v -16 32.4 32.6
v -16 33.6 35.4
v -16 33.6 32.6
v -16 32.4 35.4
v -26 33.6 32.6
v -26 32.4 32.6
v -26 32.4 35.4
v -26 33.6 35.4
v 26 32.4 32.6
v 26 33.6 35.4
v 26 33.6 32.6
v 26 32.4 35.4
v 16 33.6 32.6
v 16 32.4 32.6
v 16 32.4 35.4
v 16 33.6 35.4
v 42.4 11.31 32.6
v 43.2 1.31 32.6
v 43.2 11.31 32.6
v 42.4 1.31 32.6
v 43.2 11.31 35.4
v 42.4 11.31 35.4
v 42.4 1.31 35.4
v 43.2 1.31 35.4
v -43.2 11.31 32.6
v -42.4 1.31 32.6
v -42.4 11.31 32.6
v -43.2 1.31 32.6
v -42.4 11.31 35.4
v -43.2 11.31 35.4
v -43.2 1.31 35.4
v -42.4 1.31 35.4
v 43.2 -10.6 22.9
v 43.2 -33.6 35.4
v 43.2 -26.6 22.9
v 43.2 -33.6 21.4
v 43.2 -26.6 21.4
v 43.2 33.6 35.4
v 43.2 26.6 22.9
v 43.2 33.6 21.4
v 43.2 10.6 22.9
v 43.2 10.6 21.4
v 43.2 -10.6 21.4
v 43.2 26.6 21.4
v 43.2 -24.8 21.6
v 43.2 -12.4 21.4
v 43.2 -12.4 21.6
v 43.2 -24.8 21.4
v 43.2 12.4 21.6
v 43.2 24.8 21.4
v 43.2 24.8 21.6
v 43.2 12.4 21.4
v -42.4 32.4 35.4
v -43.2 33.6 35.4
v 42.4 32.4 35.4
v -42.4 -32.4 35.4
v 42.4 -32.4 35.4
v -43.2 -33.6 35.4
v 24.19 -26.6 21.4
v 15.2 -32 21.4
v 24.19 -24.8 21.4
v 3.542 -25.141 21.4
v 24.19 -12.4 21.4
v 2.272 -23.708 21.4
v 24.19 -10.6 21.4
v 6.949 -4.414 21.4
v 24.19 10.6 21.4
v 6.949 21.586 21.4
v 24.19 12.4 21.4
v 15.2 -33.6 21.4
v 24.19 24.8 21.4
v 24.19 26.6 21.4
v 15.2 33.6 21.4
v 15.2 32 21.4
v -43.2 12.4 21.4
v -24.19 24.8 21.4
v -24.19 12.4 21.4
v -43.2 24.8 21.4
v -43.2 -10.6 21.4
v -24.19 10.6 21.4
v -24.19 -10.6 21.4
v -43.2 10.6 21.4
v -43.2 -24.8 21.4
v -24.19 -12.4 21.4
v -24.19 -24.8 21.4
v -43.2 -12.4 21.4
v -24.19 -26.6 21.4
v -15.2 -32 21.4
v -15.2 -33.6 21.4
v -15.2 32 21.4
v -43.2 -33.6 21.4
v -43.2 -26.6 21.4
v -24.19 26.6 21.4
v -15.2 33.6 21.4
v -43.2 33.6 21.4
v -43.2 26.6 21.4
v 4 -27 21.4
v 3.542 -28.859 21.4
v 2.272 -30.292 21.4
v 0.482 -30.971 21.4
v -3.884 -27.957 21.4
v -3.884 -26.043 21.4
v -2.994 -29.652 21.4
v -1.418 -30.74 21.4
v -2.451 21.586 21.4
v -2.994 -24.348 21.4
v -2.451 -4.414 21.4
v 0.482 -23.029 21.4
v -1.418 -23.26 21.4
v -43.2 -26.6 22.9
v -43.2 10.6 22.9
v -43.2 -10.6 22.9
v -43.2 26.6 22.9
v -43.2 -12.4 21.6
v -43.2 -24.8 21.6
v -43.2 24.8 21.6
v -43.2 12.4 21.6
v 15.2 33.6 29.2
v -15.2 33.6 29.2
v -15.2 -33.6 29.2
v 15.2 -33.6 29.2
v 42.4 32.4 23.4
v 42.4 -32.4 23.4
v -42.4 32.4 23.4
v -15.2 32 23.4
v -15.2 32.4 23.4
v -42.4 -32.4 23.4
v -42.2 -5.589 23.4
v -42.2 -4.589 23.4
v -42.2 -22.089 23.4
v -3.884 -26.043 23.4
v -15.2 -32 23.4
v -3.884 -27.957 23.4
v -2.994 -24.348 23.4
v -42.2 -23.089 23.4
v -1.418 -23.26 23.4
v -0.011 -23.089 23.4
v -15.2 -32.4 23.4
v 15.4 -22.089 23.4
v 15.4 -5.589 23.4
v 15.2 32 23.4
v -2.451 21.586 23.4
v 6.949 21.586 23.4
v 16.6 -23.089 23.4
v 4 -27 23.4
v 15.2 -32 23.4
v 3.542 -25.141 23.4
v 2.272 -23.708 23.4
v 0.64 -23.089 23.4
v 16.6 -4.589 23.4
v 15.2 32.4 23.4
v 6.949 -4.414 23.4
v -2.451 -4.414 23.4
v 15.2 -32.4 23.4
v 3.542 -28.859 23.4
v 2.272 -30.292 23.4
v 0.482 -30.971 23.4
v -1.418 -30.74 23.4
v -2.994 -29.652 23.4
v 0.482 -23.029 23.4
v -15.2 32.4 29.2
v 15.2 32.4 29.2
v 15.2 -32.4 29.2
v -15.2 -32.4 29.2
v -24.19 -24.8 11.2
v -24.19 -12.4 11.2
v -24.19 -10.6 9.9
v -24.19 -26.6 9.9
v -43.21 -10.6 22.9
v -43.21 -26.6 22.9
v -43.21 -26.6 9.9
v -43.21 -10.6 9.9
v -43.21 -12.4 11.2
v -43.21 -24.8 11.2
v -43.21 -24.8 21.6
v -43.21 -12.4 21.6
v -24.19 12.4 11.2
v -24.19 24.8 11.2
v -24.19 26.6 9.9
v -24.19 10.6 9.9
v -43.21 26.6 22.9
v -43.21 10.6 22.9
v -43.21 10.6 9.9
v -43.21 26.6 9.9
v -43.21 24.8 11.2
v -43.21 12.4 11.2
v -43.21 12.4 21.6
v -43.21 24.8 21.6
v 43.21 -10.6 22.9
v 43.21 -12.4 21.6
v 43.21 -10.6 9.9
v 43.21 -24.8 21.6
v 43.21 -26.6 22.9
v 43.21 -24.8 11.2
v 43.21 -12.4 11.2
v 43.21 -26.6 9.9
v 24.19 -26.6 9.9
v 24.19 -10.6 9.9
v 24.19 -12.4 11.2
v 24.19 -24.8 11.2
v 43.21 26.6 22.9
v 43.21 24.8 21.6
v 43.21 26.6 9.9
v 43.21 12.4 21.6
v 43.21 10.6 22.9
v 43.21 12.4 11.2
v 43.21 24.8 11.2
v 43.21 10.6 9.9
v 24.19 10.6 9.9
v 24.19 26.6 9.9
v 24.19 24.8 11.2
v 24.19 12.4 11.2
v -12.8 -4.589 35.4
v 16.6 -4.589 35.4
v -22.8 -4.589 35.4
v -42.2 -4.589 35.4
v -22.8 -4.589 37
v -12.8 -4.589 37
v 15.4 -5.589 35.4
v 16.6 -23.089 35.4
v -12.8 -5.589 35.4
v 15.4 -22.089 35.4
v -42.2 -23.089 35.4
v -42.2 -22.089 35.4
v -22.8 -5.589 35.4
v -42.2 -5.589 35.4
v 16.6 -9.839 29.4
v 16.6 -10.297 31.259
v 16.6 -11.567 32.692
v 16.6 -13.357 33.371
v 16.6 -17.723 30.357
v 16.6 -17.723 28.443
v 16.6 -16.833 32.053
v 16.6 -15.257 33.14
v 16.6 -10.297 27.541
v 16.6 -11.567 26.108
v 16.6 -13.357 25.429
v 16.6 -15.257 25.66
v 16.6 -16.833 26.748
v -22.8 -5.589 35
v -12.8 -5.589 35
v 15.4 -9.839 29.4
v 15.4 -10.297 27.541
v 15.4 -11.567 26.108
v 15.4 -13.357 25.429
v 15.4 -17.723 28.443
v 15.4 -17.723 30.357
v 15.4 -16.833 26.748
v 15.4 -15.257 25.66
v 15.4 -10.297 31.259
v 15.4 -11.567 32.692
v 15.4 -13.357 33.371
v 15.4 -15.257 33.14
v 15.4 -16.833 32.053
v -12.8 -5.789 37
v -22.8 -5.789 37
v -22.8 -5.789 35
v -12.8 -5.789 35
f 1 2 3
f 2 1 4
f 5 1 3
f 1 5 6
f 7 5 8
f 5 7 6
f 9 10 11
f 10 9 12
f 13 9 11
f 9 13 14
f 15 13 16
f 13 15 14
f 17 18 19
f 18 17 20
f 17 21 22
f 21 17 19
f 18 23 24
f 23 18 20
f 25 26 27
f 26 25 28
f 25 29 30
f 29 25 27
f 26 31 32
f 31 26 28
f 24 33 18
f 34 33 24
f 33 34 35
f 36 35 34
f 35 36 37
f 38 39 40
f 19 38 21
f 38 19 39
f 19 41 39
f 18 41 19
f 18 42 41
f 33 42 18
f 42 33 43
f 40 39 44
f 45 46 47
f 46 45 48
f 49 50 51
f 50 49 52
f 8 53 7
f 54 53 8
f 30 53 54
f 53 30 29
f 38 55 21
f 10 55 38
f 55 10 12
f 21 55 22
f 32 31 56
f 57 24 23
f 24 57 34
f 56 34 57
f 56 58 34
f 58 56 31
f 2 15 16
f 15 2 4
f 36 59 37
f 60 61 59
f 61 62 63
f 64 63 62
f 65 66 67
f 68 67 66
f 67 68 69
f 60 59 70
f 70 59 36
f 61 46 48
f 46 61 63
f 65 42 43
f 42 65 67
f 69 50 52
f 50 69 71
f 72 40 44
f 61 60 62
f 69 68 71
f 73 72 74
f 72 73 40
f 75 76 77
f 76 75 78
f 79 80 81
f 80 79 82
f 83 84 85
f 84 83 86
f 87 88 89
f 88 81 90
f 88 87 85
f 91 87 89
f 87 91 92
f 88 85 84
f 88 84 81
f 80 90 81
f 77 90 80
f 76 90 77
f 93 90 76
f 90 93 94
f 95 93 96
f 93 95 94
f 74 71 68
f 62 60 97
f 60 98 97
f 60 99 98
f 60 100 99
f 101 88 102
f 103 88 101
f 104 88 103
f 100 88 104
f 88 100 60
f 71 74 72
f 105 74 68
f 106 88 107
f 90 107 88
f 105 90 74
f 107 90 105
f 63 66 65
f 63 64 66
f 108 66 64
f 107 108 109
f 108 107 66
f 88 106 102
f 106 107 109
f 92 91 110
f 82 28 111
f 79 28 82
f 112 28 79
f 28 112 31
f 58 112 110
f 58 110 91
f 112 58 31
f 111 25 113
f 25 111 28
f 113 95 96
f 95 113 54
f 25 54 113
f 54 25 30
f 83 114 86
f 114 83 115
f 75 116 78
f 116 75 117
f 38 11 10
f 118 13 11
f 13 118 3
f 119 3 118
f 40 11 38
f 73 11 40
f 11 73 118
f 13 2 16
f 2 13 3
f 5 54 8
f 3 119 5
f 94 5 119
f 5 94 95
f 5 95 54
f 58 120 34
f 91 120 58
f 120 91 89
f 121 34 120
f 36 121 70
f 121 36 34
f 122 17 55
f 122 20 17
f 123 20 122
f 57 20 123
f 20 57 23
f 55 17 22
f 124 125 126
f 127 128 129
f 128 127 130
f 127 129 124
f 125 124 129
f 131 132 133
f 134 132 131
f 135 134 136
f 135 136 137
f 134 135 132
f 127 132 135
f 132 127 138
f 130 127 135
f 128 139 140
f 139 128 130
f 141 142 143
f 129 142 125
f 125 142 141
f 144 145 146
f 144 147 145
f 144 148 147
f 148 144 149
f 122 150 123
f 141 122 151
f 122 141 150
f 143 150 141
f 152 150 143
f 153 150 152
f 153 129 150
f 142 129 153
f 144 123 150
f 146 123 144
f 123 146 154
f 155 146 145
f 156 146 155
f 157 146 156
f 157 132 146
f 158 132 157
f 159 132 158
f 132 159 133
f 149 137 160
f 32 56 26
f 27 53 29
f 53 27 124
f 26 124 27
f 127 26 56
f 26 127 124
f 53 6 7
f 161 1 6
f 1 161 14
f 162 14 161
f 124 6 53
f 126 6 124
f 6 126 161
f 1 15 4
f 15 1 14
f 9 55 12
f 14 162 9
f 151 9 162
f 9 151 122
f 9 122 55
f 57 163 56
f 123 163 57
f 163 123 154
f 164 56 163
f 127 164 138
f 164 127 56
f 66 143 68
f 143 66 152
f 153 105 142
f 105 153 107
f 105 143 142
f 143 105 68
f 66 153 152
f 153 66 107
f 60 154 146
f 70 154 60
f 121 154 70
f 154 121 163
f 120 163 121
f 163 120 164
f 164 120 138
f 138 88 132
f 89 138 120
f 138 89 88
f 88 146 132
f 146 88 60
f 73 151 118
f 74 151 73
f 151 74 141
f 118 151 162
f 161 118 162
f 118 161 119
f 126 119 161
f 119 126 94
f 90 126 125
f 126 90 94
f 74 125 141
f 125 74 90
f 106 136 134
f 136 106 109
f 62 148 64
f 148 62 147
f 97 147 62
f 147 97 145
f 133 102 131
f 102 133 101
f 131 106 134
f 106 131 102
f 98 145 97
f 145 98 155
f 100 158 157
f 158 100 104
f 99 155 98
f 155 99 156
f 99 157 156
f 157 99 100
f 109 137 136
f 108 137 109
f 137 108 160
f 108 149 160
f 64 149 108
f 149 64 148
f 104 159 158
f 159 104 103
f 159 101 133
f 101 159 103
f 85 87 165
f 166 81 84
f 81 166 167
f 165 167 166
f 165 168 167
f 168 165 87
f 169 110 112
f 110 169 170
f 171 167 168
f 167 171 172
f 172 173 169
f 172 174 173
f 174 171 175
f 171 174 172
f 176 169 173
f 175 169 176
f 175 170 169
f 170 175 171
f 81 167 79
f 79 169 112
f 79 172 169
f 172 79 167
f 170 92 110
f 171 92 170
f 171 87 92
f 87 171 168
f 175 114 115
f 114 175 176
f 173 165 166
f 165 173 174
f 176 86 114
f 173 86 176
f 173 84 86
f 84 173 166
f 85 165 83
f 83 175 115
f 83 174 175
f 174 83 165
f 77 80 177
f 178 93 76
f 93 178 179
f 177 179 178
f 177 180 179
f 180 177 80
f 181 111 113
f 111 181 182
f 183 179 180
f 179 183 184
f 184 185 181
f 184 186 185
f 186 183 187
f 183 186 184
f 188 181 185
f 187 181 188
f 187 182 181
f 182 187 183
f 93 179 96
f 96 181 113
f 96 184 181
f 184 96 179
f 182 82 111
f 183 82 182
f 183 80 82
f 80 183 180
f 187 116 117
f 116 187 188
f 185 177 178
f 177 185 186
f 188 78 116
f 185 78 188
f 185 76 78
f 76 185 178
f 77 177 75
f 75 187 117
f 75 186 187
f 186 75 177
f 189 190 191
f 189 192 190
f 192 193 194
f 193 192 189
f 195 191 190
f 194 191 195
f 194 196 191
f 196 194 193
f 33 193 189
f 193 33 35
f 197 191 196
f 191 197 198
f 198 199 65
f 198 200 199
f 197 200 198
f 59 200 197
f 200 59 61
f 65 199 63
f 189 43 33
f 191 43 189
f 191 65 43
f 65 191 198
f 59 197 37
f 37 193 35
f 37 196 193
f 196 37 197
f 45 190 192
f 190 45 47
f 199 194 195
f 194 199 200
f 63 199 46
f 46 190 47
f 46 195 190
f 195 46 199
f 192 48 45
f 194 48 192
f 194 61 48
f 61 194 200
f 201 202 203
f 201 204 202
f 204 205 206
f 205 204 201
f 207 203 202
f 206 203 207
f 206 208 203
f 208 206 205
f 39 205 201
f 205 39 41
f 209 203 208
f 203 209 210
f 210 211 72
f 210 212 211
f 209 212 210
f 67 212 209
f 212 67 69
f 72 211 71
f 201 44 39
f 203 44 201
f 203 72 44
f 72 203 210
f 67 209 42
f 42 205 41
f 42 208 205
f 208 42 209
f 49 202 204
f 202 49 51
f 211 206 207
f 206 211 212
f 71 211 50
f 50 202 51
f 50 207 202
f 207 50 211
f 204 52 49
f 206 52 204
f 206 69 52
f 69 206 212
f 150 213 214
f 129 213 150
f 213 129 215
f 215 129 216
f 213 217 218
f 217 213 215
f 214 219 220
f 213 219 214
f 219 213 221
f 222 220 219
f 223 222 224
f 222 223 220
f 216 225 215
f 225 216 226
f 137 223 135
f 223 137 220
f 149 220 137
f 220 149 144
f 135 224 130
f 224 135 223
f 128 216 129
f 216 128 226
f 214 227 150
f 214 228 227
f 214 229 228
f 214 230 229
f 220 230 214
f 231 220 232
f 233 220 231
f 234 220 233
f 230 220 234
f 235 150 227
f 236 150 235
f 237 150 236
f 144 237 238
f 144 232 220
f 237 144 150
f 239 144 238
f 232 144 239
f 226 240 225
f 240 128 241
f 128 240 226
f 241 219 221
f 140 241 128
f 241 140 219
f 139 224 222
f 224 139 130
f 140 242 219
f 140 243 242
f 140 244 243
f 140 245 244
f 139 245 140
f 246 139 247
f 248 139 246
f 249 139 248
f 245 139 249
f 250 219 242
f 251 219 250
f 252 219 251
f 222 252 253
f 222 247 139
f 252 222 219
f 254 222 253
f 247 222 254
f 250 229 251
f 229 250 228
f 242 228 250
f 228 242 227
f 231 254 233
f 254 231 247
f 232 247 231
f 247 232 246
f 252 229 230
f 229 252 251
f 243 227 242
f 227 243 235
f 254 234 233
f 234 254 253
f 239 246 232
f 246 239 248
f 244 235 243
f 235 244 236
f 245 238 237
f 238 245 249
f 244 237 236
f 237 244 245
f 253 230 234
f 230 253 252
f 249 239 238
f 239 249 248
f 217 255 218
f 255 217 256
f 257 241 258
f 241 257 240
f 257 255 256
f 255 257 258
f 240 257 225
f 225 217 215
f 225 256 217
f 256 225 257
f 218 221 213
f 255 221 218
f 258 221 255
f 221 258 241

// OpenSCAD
use <../carcasa-spinosaurus.scad>

baseIntermedia(86.4, 67.2, 0, 0, 28.40);
